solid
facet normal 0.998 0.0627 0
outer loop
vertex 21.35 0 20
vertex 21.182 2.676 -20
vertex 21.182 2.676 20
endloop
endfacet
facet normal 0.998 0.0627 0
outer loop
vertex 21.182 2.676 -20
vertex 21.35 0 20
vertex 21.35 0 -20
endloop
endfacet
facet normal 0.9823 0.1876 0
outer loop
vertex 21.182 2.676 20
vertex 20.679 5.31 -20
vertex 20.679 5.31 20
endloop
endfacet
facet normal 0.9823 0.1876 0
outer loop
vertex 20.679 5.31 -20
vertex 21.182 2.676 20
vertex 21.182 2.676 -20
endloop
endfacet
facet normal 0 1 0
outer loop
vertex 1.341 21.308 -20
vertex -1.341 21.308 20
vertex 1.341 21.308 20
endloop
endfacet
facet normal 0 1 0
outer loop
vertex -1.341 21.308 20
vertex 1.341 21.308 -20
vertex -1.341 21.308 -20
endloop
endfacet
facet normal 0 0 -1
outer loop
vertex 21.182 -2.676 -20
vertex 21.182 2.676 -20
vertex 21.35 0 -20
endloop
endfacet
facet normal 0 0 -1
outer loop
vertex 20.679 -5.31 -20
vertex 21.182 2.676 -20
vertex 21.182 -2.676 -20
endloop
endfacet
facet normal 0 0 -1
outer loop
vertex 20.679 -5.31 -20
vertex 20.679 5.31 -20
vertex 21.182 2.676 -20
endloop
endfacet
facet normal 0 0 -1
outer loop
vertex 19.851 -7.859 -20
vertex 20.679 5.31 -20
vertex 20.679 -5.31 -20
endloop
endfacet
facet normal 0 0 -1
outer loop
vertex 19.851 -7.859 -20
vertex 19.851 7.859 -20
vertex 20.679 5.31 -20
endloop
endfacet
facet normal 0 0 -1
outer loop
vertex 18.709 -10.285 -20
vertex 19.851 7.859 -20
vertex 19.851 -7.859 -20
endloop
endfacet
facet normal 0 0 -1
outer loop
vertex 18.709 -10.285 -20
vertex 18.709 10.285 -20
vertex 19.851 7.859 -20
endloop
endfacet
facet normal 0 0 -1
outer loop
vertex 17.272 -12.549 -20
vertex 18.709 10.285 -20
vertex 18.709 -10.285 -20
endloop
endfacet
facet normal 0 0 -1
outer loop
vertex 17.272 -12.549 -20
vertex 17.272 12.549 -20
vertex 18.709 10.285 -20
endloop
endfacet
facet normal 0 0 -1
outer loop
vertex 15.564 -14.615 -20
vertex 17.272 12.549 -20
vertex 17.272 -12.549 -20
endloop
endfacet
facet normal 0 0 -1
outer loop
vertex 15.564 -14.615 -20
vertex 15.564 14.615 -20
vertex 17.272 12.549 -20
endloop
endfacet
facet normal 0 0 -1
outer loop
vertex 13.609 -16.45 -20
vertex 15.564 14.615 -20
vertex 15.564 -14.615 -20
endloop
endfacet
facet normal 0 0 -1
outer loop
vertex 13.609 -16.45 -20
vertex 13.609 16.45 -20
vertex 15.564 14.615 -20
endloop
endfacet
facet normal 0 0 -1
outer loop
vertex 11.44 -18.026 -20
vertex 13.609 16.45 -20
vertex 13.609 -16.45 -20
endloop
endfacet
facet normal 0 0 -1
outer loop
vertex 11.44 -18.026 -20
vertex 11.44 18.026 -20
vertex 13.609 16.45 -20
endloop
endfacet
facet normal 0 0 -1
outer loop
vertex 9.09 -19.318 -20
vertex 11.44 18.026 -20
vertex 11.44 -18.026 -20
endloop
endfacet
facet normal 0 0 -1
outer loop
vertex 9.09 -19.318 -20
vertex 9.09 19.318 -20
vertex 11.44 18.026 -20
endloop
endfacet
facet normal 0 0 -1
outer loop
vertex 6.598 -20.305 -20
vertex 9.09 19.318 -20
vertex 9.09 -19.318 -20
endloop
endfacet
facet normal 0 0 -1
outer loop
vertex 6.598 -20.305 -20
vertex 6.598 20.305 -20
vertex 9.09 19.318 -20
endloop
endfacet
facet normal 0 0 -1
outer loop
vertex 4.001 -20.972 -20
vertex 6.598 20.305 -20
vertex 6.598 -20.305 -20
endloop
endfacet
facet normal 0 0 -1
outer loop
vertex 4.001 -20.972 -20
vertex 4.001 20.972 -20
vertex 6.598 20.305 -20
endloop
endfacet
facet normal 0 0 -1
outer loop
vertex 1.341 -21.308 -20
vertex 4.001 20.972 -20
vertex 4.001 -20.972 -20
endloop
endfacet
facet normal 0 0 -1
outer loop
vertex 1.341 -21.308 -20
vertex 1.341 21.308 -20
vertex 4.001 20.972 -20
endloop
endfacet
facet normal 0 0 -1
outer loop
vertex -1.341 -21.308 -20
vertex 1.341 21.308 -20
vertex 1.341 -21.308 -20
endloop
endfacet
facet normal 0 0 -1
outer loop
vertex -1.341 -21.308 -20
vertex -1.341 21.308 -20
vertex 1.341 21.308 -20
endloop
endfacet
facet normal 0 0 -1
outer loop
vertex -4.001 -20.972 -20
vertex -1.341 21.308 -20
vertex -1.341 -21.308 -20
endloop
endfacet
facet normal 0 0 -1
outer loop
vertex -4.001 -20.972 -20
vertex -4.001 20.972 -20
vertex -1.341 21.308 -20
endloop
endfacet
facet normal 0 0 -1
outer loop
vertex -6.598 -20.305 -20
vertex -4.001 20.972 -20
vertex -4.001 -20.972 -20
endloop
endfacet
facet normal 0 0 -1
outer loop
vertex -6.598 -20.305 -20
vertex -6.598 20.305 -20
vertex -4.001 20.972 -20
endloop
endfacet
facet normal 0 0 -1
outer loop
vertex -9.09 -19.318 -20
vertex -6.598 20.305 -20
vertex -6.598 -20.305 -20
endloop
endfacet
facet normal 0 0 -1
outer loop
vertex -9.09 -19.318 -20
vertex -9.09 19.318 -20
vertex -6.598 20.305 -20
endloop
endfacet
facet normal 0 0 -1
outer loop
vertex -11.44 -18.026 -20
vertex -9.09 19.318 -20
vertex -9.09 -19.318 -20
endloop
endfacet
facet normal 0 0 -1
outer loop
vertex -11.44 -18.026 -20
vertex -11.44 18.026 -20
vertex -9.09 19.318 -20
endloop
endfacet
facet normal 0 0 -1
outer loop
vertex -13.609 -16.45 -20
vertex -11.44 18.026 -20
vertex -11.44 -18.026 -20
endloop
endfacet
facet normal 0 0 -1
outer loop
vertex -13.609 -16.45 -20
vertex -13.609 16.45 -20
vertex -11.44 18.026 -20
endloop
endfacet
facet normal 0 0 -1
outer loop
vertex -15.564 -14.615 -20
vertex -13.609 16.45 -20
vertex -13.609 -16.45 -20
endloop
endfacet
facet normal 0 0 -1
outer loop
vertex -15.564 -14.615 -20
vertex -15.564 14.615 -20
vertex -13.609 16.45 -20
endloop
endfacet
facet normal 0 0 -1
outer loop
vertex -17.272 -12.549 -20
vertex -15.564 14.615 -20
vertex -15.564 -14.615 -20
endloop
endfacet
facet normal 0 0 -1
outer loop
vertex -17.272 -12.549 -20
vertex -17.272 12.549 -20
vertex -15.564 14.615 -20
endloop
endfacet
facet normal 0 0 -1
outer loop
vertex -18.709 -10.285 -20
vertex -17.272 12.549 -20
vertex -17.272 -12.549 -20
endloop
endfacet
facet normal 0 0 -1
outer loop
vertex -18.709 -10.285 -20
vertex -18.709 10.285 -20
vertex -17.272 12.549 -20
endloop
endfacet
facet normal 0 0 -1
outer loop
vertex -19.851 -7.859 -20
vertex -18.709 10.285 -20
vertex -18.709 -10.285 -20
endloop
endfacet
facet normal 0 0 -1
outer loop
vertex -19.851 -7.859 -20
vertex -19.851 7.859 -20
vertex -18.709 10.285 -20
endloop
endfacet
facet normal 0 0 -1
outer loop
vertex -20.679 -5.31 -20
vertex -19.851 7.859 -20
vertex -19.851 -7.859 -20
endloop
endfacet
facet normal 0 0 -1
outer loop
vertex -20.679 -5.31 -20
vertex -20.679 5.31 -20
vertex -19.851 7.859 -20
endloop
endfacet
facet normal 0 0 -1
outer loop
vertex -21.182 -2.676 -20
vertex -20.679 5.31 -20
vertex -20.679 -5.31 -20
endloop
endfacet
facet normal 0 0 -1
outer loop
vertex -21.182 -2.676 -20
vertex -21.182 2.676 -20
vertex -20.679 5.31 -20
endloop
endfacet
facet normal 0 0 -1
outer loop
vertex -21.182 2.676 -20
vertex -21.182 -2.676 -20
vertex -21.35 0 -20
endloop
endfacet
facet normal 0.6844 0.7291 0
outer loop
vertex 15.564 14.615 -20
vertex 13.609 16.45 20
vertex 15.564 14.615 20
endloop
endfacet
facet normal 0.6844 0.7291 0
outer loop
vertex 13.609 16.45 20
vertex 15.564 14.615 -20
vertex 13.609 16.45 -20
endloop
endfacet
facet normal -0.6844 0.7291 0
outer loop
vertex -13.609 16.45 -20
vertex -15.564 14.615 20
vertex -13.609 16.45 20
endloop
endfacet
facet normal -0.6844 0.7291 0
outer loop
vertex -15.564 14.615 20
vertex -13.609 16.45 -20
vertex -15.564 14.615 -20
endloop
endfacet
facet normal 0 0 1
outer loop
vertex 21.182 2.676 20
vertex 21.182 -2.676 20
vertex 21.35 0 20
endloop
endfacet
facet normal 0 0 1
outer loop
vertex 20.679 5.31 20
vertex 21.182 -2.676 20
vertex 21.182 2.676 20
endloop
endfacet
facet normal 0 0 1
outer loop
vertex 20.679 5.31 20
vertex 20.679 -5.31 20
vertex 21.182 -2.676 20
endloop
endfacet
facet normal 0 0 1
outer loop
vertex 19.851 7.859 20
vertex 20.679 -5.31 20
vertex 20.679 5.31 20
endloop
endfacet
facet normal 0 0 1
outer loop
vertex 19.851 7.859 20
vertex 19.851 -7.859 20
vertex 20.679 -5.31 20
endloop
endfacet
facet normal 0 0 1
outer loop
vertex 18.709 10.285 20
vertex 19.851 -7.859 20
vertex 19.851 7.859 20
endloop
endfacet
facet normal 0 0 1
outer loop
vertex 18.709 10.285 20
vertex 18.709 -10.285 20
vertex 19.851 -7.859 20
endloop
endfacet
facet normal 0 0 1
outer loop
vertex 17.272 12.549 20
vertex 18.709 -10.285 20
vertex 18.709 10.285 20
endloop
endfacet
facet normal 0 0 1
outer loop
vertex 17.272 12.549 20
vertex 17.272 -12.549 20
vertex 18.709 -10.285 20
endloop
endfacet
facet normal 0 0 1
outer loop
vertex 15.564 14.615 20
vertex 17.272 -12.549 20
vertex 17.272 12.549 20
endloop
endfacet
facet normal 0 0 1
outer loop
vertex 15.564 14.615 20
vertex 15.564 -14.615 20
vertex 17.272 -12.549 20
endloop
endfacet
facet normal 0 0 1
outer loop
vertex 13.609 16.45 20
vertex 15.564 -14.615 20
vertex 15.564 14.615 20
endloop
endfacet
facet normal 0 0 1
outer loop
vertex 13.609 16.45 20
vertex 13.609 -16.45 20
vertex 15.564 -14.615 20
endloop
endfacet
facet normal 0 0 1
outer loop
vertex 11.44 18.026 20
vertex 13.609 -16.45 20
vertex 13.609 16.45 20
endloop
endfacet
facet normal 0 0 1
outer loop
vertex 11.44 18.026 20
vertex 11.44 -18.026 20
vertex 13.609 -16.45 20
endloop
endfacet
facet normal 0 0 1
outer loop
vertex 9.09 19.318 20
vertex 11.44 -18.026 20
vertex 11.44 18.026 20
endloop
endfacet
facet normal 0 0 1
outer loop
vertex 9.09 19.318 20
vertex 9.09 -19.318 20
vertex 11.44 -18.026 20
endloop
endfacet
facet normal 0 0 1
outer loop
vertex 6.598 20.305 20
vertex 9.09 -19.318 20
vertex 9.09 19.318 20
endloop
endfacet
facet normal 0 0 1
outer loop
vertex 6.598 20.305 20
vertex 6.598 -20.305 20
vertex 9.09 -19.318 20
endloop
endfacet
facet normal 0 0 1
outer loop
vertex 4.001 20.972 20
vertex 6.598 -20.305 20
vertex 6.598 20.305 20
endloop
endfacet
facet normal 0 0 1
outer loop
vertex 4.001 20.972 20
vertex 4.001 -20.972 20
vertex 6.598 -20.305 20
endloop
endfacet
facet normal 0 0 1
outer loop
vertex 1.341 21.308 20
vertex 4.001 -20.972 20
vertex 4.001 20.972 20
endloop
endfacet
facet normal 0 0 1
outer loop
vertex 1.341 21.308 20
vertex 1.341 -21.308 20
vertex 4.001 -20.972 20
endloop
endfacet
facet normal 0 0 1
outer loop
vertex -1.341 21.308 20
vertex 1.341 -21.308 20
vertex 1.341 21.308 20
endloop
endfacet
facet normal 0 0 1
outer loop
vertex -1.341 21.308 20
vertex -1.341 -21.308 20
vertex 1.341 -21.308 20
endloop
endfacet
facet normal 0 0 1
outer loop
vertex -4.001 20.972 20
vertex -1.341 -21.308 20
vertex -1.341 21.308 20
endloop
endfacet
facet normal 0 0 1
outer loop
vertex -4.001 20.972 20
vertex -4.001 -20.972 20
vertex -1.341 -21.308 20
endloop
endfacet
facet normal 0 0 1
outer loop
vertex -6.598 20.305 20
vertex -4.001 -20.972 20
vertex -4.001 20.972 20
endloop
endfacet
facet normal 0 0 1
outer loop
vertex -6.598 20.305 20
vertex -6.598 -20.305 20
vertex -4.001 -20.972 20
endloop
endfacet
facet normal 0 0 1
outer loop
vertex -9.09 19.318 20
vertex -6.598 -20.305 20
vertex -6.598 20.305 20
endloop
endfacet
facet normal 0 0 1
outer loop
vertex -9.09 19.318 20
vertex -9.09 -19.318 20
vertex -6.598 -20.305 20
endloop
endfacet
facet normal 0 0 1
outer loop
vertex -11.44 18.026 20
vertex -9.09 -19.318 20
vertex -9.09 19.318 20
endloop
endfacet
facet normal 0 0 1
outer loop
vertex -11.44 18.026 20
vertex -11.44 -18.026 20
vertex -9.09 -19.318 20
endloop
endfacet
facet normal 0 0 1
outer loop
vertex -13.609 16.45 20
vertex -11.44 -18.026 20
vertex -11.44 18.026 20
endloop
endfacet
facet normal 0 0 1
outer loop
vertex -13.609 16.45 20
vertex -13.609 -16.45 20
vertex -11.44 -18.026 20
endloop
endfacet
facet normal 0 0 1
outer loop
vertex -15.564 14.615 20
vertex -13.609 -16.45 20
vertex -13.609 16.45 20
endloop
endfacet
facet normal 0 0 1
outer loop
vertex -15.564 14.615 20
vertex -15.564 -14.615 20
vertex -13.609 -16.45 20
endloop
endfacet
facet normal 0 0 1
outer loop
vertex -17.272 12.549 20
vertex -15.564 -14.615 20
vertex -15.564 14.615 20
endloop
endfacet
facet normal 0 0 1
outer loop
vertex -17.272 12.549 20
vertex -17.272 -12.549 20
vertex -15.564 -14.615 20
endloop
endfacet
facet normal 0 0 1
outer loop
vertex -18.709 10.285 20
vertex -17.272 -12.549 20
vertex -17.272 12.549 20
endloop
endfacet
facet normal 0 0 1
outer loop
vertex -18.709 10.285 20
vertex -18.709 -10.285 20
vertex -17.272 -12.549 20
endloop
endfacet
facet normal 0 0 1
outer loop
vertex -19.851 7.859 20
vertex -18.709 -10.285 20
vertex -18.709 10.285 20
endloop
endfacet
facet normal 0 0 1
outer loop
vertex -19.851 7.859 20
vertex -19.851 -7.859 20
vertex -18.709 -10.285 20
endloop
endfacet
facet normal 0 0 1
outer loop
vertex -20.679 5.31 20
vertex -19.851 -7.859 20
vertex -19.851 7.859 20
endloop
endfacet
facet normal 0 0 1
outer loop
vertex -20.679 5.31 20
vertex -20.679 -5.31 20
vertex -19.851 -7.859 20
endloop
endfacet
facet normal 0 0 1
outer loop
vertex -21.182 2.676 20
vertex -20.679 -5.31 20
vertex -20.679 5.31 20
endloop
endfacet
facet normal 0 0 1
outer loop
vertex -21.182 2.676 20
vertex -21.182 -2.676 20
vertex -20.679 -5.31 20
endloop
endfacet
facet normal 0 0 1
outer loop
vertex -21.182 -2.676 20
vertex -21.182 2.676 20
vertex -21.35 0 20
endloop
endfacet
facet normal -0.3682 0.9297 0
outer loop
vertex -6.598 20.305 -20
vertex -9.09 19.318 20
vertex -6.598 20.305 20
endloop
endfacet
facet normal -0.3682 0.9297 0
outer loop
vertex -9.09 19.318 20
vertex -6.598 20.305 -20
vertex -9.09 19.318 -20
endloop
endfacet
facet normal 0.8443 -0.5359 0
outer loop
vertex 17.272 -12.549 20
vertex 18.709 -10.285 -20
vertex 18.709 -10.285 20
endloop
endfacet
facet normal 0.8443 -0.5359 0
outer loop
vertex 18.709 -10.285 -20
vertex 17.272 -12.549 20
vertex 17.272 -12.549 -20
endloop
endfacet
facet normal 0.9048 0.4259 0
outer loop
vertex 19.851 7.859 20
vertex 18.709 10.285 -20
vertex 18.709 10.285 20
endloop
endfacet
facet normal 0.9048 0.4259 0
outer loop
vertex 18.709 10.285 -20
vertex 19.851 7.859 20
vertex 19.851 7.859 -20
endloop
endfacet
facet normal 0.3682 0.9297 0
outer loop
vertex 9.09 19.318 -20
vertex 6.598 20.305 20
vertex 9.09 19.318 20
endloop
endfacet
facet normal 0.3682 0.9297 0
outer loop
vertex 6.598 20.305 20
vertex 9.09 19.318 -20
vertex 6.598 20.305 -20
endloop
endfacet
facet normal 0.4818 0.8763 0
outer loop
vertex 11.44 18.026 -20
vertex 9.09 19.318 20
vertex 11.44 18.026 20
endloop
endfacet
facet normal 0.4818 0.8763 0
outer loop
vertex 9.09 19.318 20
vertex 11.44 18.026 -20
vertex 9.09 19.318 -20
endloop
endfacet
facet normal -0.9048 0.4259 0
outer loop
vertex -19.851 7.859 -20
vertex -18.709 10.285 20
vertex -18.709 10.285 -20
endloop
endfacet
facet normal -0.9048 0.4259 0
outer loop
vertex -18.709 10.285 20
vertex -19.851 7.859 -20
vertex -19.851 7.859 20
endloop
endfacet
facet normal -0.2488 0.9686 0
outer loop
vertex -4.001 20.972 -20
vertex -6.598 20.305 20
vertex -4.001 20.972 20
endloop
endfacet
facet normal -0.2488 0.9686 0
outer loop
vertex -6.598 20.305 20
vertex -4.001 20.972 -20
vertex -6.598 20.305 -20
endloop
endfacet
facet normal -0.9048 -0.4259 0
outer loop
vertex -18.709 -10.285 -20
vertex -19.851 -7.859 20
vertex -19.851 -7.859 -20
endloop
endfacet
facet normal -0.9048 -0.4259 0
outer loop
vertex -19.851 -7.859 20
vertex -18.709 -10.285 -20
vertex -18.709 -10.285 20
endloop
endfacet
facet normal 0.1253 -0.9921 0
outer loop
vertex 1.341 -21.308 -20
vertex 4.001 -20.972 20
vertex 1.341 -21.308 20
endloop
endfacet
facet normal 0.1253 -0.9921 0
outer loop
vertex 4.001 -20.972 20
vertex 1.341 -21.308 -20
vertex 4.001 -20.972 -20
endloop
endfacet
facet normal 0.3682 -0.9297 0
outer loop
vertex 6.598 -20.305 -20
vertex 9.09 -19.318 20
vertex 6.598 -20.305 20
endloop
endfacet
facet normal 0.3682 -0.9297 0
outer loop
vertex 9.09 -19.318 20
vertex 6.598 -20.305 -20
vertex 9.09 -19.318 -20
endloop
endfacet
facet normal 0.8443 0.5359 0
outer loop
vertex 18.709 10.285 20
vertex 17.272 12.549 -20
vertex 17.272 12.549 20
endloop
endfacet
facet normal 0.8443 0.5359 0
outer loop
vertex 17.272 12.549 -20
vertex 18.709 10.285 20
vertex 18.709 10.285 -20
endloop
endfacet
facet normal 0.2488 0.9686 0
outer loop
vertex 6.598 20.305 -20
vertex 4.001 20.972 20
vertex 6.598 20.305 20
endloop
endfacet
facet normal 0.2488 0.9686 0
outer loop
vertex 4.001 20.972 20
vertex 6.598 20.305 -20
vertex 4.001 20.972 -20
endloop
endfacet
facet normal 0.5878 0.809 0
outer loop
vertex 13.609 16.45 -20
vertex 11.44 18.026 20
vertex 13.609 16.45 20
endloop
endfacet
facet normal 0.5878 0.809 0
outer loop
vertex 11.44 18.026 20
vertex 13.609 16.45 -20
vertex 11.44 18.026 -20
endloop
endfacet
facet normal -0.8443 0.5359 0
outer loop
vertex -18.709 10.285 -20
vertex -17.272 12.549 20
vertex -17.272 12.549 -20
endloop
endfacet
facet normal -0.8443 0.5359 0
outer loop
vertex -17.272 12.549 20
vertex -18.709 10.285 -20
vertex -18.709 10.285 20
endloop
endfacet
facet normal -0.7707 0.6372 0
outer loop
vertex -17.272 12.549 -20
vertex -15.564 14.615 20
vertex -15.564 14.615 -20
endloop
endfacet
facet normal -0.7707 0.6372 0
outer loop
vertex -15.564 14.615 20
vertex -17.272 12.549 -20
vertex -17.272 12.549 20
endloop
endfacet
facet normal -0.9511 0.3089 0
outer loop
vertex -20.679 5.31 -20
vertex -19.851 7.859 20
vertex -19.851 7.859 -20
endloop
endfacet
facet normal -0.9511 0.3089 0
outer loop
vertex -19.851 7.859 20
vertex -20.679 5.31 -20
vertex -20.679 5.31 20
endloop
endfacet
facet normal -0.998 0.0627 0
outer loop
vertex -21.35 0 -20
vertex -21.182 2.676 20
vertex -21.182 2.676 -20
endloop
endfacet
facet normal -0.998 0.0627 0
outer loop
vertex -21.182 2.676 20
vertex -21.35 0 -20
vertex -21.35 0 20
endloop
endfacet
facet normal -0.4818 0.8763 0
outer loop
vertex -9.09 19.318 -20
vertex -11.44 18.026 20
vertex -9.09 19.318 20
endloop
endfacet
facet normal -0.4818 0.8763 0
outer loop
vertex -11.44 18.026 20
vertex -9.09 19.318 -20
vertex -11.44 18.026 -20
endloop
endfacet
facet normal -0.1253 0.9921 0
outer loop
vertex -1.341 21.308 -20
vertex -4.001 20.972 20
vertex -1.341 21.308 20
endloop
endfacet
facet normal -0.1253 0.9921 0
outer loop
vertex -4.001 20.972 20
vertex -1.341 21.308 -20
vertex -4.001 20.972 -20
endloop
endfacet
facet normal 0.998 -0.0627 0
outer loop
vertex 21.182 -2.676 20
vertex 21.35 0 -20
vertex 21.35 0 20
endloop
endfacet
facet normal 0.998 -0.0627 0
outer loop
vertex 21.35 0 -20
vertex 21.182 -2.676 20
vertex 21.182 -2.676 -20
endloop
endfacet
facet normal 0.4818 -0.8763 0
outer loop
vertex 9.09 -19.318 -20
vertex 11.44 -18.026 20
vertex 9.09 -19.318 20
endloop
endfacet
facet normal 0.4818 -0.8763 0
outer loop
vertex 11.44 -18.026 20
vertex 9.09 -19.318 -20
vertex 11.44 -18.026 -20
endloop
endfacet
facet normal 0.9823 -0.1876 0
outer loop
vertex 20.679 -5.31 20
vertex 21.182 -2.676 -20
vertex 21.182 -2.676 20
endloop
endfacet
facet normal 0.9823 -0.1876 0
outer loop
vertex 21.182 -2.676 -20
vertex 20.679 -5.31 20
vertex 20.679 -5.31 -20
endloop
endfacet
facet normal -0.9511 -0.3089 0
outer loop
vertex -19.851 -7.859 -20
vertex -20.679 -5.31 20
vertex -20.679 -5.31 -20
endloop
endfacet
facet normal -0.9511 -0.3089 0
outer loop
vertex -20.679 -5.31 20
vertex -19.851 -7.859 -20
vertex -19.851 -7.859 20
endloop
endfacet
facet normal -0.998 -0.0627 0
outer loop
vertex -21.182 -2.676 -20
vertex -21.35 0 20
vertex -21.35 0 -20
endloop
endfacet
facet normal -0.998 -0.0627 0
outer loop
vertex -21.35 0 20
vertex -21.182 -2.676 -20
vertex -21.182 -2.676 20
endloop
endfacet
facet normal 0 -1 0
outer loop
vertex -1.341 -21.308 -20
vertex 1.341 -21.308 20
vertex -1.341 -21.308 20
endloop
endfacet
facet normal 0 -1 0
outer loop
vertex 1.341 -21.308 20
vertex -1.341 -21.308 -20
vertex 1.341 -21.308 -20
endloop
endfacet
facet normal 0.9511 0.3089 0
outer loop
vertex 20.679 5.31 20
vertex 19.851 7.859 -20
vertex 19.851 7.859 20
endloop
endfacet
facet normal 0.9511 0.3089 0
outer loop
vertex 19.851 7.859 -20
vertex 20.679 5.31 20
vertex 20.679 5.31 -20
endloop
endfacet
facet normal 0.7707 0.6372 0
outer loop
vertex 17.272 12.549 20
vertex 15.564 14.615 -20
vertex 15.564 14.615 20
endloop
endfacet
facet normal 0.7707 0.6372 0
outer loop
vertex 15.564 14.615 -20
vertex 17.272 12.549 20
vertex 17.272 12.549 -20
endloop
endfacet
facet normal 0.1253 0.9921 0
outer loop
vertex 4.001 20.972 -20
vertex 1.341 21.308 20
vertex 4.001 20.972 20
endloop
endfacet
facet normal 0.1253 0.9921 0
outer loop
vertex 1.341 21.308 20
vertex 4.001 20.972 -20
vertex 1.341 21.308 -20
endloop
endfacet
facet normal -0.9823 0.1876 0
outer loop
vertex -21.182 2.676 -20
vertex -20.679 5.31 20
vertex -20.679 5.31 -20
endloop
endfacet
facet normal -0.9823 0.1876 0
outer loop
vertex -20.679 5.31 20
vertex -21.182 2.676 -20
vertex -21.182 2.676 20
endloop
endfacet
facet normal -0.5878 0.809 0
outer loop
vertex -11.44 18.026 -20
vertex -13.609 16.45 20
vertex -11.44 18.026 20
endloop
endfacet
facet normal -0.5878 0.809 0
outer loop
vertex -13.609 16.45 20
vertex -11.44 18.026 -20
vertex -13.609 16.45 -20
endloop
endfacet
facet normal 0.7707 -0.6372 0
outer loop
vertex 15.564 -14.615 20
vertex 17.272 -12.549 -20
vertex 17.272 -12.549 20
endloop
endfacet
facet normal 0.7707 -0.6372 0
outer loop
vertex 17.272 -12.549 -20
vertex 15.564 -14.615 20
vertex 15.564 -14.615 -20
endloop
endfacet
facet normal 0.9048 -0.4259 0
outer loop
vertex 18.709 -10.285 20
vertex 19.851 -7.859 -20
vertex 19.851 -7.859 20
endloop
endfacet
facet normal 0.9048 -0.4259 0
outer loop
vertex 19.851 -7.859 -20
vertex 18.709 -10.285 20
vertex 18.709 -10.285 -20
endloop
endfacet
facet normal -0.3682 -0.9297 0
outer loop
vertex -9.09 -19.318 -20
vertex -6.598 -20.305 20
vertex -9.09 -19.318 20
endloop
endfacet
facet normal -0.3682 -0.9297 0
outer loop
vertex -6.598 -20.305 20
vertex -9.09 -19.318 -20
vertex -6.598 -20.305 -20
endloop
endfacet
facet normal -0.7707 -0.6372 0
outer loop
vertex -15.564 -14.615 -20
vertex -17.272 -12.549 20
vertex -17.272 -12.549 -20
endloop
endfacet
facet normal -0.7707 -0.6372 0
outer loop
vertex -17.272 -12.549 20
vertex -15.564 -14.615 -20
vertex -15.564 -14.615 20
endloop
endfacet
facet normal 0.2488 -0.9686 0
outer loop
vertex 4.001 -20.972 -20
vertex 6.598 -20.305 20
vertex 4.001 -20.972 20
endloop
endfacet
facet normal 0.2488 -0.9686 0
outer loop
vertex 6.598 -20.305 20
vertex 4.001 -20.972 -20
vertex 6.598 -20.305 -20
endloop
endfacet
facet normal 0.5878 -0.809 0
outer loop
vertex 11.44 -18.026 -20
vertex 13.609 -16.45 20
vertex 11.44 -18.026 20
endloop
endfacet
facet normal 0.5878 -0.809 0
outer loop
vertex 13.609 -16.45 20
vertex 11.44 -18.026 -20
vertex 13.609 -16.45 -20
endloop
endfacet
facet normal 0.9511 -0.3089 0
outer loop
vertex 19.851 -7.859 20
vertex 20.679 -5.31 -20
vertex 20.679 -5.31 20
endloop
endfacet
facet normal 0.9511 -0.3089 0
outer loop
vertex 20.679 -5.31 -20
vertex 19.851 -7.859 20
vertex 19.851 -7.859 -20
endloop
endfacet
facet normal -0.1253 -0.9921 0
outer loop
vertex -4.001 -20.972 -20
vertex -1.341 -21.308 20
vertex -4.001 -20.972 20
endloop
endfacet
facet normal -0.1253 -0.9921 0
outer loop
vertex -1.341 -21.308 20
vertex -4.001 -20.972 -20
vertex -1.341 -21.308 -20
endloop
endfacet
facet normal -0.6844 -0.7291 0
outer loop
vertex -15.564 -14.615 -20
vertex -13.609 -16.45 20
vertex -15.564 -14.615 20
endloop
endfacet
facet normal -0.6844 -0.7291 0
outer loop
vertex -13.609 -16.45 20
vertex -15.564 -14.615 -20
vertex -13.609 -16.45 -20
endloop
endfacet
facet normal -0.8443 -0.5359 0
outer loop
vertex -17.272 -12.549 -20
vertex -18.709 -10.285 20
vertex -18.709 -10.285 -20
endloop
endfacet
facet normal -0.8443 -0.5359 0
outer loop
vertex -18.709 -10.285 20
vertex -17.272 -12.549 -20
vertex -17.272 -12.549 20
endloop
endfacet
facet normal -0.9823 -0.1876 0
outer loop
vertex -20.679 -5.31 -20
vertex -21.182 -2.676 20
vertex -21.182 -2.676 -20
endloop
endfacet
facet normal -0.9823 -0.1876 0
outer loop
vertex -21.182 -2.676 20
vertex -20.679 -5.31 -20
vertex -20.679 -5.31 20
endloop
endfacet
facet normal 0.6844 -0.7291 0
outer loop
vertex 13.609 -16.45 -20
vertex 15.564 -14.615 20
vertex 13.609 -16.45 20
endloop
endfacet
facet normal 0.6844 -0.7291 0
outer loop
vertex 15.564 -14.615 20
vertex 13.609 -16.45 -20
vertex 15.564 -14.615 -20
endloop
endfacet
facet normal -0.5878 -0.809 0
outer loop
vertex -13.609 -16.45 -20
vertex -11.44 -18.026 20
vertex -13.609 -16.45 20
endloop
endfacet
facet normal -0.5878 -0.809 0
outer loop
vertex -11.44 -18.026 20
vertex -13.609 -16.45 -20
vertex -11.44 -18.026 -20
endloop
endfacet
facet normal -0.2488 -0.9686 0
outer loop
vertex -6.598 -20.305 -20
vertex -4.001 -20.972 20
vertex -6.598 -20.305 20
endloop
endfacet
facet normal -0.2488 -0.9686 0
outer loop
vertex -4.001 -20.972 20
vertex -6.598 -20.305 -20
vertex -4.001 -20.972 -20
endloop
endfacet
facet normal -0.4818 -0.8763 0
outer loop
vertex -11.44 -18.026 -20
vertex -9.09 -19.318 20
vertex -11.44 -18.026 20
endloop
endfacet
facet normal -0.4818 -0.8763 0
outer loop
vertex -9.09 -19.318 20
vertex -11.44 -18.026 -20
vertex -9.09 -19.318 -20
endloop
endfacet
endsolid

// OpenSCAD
$fn = 50;


difference() {
	union() {
		translate(v = [0, 0, -20.0000000000]) {
			cylinder(h = 40, r = 21.3500000000);
		}
	}
	union() {
		translate(v = [0, 0, -100.0000000000]) {
			cylinder(h = 200, r = 0);
		}
	}
}
